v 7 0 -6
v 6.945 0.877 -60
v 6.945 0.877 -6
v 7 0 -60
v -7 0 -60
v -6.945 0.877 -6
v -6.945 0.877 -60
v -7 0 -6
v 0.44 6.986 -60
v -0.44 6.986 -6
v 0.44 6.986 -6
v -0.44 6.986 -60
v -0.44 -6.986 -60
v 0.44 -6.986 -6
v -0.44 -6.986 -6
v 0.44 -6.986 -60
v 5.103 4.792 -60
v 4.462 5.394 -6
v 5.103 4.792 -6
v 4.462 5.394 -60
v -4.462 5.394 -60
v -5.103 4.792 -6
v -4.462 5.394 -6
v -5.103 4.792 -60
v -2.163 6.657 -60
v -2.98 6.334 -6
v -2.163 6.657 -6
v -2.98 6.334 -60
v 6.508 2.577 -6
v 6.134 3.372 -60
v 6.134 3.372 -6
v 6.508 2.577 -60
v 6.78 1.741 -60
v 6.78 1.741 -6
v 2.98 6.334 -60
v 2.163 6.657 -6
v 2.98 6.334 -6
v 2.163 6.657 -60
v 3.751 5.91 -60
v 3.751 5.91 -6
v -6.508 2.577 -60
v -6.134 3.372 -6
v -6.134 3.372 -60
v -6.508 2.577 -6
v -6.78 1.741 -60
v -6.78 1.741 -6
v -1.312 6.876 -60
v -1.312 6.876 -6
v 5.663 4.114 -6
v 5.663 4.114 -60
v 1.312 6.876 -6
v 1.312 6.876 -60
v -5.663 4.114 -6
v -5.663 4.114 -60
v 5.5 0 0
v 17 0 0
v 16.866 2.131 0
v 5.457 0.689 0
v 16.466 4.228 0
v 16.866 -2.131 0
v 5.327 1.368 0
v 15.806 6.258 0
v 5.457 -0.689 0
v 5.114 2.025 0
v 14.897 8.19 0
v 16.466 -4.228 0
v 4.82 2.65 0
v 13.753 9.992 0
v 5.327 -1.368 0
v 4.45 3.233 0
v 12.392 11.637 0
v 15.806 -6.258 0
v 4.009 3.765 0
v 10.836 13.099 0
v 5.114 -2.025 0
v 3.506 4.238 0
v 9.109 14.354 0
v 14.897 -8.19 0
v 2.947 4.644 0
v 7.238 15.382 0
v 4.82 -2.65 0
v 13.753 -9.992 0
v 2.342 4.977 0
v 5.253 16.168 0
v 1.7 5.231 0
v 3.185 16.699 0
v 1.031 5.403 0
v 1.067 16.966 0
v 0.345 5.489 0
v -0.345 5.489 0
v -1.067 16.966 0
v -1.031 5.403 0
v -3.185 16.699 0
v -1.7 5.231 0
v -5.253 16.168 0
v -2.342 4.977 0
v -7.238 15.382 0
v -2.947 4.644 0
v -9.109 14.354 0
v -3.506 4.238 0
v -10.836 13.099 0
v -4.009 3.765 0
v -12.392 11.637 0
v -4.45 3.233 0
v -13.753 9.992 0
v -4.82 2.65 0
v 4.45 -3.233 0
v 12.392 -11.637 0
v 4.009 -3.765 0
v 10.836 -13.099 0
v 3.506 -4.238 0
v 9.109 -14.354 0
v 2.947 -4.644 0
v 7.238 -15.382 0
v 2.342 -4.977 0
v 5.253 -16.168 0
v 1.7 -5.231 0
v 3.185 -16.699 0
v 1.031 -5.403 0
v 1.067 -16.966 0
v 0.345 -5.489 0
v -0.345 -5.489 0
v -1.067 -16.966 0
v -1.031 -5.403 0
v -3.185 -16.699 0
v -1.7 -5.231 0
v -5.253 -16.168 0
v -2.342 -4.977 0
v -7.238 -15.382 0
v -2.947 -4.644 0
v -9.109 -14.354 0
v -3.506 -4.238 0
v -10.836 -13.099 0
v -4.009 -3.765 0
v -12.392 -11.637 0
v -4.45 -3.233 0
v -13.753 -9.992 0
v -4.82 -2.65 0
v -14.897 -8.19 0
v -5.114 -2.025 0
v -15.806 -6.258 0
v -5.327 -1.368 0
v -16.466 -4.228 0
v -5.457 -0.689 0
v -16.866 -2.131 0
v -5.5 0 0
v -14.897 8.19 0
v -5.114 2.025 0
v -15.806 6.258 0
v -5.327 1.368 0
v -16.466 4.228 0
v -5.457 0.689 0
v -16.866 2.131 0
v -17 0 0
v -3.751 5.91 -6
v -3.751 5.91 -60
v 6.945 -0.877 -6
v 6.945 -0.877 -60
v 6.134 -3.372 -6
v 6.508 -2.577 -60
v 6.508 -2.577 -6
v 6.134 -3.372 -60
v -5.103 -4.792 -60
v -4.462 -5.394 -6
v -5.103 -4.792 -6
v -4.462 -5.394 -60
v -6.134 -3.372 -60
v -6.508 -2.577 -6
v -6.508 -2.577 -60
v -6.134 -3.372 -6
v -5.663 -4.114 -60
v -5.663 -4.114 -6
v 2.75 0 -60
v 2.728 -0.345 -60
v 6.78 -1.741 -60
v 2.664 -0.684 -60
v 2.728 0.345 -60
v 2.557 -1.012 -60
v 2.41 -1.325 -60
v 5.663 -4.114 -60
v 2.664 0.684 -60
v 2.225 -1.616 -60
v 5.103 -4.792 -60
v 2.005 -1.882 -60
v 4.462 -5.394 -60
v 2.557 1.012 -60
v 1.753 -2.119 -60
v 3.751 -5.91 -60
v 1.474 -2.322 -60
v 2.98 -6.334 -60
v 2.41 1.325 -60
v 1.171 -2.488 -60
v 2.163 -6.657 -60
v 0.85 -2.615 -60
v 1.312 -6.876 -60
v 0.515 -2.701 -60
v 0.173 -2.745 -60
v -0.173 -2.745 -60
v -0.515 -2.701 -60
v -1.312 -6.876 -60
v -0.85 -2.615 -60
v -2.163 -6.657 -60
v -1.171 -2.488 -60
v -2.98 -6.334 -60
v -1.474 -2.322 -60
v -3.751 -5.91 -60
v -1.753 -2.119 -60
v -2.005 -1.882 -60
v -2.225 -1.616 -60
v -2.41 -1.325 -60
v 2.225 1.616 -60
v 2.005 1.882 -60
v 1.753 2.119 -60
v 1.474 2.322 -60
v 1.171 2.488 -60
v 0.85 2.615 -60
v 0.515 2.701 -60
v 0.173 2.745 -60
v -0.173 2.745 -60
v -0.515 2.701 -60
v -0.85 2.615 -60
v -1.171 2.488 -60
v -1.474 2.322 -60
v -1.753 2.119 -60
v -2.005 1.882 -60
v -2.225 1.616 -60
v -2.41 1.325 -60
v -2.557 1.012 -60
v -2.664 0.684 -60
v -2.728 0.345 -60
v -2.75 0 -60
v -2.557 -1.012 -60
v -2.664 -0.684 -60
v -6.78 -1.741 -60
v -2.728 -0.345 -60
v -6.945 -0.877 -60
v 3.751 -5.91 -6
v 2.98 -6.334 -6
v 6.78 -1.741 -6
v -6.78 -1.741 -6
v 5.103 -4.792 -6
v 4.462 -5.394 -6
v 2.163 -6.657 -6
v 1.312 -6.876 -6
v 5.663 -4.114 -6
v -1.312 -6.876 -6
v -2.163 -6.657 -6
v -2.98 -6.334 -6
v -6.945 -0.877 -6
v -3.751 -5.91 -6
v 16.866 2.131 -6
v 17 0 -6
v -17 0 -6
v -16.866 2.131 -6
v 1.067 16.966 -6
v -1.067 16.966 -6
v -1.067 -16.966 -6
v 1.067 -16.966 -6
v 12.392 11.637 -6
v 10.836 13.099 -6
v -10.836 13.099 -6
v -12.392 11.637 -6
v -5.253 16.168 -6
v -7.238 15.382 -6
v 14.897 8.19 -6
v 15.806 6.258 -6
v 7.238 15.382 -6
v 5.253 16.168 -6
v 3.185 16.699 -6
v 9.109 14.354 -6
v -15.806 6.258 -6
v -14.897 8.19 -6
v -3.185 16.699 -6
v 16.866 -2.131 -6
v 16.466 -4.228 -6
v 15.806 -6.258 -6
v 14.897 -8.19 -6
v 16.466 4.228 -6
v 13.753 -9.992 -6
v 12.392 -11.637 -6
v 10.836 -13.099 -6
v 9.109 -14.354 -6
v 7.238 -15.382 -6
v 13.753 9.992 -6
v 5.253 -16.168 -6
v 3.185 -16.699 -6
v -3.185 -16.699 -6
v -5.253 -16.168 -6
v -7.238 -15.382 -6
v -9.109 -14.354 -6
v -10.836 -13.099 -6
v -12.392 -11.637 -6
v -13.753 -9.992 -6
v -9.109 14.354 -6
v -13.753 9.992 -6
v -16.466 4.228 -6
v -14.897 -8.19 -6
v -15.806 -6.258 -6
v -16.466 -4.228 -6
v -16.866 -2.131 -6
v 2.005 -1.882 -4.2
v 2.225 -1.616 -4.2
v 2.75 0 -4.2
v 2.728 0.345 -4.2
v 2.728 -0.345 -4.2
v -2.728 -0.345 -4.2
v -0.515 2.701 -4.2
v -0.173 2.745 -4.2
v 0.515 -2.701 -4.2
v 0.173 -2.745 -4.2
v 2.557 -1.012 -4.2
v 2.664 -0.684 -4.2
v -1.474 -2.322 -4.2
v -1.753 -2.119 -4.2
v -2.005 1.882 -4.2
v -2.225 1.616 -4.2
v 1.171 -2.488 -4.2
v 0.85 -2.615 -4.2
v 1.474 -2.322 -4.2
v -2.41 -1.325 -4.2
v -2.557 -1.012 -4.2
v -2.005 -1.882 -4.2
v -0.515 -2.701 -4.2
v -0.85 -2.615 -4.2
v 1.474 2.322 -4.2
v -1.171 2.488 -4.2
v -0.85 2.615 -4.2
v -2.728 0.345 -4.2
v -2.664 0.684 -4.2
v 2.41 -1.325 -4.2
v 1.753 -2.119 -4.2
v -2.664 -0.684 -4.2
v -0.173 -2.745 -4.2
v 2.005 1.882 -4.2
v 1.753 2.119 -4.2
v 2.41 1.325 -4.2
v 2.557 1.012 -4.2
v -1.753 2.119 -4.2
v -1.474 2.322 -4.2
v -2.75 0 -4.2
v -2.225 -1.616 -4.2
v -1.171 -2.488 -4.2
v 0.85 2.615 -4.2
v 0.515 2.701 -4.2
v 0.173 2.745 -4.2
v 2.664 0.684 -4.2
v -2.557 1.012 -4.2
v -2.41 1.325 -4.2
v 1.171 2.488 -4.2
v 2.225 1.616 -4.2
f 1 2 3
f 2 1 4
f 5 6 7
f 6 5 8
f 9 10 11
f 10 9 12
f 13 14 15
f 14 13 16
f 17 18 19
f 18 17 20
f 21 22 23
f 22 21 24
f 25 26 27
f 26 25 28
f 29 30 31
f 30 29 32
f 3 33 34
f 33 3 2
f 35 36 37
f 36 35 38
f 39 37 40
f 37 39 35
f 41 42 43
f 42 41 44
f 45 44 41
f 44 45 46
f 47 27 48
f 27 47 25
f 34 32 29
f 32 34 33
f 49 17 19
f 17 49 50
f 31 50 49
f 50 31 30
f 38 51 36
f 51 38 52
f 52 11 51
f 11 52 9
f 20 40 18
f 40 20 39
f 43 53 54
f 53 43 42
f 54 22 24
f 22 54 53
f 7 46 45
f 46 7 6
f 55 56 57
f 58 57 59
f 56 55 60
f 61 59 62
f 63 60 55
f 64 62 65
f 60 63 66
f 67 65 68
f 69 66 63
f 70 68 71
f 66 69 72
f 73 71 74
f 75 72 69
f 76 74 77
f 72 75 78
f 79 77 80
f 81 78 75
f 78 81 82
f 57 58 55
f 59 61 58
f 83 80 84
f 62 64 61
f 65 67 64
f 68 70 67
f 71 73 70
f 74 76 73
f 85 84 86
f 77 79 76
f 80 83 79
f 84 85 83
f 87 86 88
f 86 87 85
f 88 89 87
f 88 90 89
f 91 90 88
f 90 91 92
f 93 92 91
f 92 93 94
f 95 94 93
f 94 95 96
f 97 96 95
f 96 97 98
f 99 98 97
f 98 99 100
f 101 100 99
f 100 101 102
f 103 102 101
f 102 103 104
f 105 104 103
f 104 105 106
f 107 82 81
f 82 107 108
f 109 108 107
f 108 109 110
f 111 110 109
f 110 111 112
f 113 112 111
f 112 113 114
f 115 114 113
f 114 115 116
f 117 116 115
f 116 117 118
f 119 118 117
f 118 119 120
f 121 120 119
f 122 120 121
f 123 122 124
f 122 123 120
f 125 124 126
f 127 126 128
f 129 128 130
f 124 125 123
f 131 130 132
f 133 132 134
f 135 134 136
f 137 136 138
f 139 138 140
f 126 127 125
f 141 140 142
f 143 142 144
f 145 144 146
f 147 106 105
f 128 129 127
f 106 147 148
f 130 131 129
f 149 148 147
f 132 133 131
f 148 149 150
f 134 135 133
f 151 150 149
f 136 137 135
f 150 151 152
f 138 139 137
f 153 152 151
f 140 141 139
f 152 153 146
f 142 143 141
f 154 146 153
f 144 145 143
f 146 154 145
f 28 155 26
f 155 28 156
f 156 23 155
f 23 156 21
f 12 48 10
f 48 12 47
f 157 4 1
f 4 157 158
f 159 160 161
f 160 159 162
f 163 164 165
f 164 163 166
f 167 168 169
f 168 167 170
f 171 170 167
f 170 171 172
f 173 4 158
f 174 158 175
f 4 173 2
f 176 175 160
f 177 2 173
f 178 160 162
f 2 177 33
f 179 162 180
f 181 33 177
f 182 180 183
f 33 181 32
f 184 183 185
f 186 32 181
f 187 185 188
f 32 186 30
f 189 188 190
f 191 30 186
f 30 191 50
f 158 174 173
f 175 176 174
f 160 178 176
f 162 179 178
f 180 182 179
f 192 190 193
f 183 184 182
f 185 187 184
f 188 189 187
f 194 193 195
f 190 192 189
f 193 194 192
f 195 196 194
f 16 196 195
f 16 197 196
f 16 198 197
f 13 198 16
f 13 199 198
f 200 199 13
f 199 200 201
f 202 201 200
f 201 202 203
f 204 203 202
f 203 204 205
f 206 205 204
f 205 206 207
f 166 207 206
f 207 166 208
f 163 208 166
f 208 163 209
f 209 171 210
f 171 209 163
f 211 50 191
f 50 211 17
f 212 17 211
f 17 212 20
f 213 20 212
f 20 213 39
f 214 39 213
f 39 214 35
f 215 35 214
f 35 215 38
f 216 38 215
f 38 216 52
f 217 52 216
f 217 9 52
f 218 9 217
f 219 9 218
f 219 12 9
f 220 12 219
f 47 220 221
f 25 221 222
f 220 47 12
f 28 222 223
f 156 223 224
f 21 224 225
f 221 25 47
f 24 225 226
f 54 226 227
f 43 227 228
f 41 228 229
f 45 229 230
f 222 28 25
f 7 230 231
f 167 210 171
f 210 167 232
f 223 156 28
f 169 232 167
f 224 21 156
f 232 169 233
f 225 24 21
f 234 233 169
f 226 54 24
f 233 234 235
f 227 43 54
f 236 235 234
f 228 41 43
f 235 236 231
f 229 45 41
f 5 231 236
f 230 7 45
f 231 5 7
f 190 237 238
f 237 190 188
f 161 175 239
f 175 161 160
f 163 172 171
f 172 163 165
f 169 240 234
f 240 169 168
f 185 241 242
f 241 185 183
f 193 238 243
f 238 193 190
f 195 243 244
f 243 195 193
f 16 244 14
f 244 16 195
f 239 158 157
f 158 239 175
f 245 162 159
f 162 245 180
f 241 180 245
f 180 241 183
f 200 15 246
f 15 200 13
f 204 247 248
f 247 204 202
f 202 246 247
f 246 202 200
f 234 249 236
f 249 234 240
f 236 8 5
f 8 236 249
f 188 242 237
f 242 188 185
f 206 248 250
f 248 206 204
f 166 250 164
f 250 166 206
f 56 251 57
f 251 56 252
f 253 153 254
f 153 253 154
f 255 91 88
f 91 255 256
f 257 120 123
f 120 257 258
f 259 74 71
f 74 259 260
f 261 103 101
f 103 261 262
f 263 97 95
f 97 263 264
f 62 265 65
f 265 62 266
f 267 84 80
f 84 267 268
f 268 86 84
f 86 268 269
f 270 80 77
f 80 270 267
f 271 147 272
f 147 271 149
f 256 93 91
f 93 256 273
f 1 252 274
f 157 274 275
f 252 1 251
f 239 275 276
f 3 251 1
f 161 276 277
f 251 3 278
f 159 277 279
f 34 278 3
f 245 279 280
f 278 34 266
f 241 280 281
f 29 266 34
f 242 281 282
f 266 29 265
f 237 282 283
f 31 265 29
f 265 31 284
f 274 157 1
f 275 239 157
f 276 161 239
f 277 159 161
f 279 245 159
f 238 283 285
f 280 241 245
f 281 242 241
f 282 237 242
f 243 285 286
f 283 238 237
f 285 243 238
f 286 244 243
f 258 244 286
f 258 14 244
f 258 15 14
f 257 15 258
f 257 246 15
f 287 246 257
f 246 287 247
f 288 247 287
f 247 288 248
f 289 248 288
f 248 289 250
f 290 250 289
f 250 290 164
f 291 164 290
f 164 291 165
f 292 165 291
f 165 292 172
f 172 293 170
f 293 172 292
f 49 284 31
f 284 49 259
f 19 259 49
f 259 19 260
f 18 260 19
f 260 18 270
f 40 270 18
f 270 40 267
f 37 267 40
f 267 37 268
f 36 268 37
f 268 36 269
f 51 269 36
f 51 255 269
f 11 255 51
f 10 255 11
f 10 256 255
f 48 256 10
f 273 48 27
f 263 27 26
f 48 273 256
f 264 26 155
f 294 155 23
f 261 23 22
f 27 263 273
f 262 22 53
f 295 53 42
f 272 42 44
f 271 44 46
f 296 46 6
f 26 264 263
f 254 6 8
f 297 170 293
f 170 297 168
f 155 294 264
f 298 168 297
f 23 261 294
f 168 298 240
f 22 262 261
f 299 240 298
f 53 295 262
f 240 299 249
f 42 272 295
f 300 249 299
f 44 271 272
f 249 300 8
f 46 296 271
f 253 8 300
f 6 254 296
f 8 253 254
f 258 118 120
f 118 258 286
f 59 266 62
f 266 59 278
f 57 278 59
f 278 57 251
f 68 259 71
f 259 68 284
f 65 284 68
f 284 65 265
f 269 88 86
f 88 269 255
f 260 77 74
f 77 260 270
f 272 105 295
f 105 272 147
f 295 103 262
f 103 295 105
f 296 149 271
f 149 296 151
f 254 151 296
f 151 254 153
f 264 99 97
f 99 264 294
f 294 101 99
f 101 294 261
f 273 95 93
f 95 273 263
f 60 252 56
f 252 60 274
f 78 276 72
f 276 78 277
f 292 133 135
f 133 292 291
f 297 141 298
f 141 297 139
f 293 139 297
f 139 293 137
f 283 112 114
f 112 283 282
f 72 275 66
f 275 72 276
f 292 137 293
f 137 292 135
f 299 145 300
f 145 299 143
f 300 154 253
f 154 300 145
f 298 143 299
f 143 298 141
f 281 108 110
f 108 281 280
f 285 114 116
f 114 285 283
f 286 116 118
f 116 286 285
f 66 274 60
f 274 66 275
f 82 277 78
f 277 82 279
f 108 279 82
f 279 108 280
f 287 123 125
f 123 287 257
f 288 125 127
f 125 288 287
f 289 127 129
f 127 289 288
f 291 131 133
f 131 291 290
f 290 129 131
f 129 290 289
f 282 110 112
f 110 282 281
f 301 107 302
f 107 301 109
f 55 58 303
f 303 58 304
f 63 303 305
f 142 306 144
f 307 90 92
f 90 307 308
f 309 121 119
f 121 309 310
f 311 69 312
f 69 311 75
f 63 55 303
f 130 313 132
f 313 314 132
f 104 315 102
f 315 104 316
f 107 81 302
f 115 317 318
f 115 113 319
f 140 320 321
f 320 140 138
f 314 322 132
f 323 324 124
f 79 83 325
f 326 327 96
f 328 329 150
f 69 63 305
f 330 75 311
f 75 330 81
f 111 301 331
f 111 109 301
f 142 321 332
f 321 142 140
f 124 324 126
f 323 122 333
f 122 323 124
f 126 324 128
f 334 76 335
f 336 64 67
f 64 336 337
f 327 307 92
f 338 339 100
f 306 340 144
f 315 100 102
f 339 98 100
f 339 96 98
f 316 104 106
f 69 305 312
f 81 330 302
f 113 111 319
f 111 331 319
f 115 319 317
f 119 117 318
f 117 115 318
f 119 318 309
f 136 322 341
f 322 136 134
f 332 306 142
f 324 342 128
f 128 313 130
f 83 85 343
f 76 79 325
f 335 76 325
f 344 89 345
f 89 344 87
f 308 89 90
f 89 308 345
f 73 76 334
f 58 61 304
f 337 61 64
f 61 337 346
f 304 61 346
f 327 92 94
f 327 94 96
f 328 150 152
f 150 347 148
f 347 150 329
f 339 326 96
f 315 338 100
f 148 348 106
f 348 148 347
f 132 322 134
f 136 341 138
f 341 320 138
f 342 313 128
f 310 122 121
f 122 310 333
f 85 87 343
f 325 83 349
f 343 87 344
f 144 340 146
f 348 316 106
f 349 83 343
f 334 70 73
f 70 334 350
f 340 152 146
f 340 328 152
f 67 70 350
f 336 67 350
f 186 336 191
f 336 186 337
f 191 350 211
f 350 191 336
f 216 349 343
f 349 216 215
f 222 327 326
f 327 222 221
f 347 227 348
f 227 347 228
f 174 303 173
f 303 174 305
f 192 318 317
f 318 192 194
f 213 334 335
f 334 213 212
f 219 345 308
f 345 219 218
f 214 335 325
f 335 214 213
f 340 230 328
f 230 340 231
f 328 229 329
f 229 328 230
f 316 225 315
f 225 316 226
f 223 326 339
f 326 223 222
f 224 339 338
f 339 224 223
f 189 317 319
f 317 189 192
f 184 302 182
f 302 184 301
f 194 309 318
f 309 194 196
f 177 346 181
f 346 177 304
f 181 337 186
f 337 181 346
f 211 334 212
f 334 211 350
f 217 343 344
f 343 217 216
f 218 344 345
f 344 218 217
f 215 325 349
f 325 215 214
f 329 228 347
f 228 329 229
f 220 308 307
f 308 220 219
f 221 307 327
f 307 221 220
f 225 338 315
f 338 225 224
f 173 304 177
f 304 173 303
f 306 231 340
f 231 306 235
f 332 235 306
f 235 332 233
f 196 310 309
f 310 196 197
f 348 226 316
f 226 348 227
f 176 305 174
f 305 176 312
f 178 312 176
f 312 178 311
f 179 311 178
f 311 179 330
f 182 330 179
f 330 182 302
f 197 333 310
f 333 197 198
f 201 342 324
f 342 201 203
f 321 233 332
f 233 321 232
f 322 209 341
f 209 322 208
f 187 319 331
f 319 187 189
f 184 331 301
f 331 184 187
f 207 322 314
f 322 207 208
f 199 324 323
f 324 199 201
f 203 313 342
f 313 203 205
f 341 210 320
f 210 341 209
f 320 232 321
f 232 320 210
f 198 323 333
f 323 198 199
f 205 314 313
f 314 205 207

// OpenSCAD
$fn = 50;


difference() {
	union() {
		translate(v = [0, 0, -60.0000000000]) {
			cylinder(h = 60, r = 7.0000000000);
		}
		translate(v = [0, 0, -6.0000000000]) {
			cylinder(h = 6, r = 17.0000000000);
		}
	}
	union() {
		translate(v = [0, 0, 0]) {
			rotate(a = [0, 0, 0]) {
				difference() {
					union() {
						#translate(v = [0, 0, -60.0000000000]) {
							cylinder(h = 60, r = 2.2500000000);
						}
						#translate(v = [0, 0, -4.2000000000]) {
							cylinder(h = 4.2000000000, r = 7.0000000000, r1 = 2.7500000000, r2 = 5.5000000000);
						}
						#translate(v = [0, 0, -60.0000000000]) {
							cylinder(h = 60, r = 2.7500000000);
						}
						#translate(v = [0, 0, -60.0000000000]) {
							cylinder(h = 60, r = 2.2500000000);
						}
					}
					union();
				}
			}
		}
	}
}
